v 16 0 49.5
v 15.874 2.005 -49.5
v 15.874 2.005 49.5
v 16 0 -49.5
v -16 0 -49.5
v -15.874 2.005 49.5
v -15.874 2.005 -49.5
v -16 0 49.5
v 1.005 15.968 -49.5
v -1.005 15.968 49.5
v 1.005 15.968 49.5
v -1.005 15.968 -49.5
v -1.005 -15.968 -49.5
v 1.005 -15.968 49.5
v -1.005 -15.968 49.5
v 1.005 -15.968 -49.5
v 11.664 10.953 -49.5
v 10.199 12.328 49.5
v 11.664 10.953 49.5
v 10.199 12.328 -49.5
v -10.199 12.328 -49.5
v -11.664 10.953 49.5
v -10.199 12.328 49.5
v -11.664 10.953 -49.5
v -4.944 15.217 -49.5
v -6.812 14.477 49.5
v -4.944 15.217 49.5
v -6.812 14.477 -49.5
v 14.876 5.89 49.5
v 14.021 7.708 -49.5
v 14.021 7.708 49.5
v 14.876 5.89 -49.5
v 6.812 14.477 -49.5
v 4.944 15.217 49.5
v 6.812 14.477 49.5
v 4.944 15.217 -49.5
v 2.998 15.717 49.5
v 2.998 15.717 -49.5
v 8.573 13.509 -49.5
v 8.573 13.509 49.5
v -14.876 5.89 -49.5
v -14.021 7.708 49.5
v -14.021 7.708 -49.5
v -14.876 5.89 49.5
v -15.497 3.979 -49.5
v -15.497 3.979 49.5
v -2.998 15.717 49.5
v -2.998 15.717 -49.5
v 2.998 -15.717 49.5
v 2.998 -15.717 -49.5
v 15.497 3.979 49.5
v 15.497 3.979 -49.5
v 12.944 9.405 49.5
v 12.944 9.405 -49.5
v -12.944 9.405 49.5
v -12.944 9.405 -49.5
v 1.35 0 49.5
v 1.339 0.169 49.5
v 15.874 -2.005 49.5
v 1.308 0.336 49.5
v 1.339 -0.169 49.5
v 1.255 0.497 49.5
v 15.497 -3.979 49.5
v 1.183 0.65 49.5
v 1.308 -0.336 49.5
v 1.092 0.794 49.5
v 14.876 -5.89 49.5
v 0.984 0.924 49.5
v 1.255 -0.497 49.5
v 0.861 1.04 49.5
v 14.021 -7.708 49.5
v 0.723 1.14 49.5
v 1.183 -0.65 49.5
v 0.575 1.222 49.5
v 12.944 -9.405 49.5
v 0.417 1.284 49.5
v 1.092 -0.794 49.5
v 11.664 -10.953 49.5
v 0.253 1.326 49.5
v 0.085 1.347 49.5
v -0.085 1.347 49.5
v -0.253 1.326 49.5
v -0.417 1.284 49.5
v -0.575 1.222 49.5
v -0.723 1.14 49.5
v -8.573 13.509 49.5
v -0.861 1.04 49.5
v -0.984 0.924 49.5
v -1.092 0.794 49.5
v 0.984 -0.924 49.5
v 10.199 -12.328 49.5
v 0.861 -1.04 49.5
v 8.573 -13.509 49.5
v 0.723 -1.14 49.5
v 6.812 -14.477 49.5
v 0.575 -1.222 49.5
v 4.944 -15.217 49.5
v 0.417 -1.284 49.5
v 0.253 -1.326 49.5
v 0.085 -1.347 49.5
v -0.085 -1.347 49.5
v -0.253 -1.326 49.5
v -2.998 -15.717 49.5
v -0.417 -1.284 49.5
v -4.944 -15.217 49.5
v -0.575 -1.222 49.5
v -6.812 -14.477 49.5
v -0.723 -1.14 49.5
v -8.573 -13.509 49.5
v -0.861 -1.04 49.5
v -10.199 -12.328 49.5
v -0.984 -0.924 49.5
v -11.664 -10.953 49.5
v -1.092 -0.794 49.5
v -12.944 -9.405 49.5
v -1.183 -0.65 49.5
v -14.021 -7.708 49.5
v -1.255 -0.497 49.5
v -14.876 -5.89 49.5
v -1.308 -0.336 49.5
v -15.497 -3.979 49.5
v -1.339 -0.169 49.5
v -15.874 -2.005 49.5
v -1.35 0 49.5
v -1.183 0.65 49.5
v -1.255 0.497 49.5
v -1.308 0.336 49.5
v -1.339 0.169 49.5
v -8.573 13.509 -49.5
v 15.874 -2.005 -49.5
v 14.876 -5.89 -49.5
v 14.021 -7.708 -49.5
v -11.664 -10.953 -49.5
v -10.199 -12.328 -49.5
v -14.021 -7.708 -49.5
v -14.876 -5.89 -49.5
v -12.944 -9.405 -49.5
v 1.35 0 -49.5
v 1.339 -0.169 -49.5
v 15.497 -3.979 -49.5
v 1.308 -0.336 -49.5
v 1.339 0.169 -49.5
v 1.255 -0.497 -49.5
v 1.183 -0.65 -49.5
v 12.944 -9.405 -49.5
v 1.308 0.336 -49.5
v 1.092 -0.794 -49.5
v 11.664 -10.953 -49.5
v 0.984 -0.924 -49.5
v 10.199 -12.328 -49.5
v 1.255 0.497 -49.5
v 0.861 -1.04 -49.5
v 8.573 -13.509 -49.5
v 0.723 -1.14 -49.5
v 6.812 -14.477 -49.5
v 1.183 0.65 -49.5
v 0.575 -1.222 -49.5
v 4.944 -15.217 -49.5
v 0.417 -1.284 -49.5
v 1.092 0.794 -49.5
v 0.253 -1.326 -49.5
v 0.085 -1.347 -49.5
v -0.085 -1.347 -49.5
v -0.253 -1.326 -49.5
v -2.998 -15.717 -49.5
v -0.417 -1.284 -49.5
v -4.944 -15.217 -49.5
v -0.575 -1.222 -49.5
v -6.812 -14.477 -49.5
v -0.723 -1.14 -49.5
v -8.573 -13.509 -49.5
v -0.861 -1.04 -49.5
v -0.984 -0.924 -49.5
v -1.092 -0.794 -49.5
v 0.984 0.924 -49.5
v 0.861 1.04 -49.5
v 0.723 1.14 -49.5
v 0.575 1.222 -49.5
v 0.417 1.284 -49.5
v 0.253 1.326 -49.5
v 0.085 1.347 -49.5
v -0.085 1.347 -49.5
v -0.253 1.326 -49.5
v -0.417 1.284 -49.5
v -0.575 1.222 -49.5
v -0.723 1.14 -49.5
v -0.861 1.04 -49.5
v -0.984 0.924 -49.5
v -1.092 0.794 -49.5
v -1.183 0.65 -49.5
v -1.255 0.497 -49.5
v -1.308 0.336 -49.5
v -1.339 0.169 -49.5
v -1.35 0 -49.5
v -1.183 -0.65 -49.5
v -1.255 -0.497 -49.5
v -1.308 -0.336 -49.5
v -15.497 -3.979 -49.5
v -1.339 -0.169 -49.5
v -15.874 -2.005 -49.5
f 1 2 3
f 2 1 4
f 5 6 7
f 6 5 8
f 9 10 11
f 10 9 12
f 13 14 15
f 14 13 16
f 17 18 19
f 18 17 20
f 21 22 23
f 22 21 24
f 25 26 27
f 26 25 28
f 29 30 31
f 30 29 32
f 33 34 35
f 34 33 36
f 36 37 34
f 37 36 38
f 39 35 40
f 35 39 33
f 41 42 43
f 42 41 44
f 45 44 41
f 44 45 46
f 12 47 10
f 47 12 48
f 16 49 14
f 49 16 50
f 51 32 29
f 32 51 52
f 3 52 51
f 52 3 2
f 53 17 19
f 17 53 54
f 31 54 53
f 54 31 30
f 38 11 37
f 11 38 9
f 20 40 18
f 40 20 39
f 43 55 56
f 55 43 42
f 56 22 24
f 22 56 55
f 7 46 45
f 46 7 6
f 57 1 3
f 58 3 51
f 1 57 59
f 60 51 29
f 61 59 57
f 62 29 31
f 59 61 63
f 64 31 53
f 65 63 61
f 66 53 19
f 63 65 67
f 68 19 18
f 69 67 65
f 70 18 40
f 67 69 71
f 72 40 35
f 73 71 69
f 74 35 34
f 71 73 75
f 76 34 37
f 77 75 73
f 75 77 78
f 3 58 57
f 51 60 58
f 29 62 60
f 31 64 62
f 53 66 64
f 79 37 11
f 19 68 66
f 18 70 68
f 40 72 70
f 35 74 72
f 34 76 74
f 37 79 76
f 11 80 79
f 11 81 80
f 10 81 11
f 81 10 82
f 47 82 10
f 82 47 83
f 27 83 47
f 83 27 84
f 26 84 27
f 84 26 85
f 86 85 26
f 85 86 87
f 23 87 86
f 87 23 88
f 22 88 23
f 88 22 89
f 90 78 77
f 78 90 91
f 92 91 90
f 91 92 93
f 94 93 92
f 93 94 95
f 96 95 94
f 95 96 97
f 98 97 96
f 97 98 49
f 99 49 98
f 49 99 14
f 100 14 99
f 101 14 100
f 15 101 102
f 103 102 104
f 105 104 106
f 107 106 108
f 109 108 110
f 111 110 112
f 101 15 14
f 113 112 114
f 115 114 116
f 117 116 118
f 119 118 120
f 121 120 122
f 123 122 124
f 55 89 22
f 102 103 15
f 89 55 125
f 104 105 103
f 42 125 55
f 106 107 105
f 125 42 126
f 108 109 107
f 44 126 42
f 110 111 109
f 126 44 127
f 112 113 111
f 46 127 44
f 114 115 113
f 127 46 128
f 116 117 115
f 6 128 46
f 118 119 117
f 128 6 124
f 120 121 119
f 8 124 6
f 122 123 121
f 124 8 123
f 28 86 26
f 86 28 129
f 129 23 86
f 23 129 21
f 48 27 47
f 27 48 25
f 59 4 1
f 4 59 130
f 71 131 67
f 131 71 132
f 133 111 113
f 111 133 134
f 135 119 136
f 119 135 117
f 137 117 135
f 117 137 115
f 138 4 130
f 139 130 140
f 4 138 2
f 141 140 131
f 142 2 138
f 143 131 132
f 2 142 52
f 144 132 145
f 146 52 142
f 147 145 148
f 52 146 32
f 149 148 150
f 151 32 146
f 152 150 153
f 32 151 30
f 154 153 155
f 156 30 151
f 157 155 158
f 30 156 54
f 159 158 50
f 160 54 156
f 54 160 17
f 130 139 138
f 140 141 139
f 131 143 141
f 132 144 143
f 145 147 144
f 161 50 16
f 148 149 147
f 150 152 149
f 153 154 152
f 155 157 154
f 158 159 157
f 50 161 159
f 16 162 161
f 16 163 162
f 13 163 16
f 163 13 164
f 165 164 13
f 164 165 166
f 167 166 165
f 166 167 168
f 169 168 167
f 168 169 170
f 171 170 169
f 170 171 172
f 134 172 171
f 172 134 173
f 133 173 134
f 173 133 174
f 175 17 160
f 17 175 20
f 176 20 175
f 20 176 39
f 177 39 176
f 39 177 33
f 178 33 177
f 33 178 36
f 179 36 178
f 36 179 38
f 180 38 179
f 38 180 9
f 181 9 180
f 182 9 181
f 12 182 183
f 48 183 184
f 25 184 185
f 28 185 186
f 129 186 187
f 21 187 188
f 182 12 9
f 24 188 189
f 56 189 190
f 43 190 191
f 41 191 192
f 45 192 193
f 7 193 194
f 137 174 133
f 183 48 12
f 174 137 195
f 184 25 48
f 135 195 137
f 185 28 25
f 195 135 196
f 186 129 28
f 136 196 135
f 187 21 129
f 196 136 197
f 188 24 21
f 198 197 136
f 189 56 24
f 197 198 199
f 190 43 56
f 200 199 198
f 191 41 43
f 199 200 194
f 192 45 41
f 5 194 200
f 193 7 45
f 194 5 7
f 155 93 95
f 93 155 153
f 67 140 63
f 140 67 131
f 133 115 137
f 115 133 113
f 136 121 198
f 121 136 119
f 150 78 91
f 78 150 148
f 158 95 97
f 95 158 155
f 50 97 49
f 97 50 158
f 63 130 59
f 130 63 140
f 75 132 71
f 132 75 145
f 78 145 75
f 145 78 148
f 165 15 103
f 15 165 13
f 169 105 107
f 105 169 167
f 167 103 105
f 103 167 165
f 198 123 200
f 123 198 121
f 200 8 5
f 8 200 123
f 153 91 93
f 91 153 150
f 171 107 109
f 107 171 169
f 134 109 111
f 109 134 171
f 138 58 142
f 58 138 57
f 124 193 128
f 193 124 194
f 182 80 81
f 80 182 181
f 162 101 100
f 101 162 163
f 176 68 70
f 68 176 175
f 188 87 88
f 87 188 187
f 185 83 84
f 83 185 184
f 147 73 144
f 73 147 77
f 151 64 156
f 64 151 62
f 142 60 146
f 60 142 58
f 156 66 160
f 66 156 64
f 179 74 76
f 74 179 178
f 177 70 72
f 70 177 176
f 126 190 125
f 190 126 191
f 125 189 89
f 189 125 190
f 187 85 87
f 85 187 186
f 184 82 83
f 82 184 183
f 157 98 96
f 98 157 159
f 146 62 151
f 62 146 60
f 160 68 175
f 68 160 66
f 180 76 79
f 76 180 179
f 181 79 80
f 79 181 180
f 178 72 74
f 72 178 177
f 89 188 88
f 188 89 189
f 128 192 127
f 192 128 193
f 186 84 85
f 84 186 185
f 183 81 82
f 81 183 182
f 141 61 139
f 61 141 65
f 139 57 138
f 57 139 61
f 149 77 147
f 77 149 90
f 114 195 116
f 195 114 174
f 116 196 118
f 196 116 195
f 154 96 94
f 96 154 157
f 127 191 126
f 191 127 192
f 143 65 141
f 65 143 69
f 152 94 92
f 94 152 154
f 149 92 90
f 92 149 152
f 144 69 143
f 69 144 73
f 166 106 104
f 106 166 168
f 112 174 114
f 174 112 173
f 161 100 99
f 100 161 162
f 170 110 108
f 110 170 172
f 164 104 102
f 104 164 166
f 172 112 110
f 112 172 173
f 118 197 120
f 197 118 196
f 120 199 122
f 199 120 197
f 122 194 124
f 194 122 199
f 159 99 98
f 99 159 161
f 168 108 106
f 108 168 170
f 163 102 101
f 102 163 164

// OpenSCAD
$fn = 50;


difference() {
	union() {
		translate(v = [0, 0, -49.5000000000]) {
			cylinder(h = 99, r = 16.0000000000);
		}
	}
	union() {
		translate(v = [0, 0, -100.0000000000]) {
			cylinder(h = 200, r = 1.3500000000);
		}
	}
}
